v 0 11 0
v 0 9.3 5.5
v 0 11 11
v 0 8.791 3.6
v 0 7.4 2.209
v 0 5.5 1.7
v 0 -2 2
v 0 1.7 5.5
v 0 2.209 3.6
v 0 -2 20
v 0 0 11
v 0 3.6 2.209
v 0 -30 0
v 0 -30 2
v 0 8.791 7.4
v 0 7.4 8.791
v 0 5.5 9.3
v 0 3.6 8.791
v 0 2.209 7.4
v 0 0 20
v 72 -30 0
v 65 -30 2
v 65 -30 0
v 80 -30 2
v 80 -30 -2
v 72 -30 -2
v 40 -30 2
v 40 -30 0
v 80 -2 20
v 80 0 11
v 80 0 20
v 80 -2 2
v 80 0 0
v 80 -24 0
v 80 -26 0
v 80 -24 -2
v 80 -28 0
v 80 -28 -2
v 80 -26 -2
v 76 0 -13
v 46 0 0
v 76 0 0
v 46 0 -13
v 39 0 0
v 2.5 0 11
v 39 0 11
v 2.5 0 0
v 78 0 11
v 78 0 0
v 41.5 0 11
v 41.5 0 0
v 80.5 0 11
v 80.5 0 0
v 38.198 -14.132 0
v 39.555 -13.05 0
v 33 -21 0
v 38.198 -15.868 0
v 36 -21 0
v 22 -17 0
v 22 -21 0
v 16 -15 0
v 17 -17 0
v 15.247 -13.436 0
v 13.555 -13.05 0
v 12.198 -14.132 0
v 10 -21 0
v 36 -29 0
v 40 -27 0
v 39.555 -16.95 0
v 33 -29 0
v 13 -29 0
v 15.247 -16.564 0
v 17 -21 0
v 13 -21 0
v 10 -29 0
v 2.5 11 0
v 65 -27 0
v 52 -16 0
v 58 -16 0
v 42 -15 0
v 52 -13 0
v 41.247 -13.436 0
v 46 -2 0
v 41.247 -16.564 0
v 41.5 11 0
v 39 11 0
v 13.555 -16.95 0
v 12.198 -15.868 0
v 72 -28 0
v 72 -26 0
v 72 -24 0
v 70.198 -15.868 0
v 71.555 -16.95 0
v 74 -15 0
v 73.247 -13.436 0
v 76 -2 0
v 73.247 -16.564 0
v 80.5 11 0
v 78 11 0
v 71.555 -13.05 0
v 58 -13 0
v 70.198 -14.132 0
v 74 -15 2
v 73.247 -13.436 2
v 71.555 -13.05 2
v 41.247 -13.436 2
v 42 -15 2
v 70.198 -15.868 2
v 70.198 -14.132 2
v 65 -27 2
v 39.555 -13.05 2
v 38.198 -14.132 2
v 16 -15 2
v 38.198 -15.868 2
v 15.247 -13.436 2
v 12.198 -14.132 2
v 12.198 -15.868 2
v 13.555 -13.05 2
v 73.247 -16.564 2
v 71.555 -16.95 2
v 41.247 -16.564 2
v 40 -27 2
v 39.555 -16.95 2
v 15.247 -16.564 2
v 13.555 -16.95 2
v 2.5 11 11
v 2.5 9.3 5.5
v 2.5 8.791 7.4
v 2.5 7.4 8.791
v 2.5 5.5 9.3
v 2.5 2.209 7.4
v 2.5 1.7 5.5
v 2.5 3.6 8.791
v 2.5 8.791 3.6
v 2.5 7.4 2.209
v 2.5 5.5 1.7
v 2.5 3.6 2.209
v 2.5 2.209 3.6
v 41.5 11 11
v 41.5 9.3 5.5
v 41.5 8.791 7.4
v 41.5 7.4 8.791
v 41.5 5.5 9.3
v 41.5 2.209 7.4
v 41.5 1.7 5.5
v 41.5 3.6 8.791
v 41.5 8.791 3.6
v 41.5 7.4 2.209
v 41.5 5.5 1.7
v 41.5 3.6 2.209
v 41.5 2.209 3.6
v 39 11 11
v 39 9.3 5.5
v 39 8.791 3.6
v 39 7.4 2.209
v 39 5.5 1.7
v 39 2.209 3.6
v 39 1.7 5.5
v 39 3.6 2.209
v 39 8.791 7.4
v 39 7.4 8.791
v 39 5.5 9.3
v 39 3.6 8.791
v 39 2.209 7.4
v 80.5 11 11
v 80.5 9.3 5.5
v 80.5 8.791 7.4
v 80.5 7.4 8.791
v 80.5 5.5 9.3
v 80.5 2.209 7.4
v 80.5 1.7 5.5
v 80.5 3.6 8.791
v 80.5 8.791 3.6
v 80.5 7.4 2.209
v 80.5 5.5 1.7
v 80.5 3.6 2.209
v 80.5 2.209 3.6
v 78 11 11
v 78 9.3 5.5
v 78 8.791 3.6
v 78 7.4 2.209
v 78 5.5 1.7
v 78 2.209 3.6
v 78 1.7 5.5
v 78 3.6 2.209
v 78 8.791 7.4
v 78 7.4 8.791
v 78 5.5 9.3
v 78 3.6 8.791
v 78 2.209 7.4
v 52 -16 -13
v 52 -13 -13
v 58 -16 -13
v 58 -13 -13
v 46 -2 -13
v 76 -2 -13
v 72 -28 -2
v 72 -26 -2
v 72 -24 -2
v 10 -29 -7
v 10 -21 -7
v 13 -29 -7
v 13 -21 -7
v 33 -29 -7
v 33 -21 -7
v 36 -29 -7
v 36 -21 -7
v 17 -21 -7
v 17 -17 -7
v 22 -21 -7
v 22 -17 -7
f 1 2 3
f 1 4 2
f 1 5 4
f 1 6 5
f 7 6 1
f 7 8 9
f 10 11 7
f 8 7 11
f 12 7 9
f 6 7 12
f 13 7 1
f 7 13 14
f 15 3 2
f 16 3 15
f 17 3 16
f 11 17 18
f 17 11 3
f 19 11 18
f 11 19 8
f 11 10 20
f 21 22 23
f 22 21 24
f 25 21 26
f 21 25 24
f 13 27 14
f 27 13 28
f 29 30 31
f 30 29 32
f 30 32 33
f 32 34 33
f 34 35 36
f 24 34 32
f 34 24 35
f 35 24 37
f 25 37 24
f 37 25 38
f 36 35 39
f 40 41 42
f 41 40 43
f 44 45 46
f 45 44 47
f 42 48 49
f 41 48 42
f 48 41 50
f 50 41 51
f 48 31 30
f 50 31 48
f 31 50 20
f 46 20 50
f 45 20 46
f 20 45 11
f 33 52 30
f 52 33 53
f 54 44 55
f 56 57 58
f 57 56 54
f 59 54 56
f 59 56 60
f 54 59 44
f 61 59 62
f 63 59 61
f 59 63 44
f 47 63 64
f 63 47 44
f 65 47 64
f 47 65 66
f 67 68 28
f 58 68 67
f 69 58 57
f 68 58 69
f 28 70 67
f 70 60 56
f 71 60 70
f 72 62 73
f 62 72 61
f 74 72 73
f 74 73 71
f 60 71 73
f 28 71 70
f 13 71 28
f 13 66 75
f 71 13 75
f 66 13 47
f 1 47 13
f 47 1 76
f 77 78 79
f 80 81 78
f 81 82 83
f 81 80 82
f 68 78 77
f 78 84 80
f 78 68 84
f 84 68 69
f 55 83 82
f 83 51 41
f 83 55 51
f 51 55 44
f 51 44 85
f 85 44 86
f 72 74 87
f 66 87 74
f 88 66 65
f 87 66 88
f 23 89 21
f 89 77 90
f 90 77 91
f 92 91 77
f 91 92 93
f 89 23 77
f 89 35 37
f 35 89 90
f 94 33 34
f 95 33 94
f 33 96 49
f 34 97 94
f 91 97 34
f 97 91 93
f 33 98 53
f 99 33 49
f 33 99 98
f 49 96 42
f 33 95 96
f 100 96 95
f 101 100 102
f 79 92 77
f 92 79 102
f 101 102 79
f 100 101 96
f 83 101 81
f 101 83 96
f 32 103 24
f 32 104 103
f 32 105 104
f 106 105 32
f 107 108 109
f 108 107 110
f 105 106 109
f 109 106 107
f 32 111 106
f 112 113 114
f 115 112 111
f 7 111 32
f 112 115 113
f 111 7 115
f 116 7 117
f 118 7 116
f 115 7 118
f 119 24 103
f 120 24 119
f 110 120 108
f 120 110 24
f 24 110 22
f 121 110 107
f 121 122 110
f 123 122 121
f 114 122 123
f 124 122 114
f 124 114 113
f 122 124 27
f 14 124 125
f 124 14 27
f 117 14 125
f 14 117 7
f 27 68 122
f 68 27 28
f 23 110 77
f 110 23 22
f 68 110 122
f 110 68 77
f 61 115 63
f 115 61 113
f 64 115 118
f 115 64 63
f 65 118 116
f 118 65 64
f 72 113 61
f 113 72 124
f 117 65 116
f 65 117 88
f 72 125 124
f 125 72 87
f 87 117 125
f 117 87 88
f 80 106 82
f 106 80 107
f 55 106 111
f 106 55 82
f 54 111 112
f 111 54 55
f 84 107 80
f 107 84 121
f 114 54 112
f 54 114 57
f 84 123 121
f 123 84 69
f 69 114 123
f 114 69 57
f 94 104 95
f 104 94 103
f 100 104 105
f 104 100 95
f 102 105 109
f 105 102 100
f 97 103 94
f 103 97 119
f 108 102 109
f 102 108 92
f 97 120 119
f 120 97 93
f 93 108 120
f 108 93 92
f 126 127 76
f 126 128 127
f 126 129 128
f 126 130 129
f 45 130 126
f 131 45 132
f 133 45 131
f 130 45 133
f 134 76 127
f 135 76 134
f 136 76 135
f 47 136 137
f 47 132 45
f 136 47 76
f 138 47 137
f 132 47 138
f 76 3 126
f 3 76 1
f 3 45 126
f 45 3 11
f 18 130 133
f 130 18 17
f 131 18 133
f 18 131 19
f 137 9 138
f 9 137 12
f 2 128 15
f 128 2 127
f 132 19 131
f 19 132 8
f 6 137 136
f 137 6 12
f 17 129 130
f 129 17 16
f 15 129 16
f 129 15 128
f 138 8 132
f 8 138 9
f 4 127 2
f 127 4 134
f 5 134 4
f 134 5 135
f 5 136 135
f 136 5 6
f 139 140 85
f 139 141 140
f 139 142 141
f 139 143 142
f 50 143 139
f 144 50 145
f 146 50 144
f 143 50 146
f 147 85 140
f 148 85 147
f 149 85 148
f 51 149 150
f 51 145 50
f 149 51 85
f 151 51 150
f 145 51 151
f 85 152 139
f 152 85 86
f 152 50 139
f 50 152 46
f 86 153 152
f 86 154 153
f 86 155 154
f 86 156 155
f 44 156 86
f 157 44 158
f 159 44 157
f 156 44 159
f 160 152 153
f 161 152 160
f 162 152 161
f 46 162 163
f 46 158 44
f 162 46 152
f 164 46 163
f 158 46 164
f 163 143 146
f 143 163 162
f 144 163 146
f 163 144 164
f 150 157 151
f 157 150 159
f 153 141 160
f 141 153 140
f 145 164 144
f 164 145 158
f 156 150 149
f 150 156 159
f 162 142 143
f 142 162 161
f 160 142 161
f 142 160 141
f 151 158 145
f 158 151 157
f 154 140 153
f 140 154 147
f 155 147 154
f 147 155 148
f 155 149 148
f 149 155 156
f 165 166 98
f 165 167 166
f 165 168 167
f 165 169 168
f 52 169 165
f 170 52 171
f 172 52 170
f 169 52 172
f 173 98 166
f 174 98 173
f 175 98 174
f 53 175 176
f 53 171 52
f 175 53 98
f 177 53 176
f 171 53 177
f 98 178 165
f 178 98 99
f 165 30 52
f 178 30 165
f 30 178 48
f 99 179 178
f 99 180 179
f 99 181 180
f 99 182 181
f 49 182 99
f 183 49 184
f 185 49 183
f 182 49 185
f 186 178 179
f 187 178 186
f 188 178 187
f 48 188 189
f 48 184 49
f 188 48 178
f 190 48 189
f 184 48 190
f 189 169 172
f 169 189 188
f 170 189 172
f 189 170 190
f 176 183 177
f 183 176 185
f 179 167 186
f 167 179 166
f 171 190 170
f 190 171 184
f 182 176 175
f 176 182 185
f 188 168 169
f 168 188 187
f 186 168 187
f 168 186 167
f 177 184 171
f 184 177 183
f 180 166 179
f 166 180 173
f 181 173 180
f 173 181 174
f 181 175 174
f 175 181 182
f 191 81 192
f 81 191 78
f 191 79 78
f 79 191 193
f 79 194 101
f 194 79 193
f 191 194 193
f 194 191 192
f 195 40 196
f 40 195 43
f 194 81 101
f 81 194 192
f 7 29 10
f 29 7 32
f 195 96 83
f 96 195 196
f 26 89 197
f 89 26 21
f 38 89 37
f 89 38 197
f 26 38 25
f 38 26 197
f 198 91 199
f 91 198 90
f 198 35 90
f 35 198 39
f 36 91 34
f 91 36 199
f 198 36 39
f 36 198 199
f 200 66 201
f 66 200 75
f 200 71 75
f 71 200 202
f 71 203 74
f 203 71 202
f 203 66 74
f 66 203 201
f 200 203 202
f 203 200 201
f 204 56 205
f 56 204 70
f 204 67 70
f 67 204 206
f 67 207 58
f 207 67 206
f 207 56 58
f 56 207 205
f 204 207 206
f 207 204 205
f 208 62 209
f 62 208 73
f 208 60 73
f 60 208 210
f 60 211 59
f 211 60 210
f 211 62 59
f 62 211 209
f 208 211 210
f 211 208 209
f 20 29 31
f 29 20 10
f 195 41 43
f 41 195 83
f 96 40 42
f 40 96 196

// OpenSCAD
// Kitchen Sink Light - USB battery version.

h=20;
w=30;
d=80;

t=2;


module ledhold(t)
{   
    rotate([0,90,0])
    difference() {
        //cube([10,10,t]);
        //translate([5, 5, -1]) rotate([ 0,0,90]) cylinder(h=4+t,r=3.5);
        cube([11,11,t]);
        translate([5.5, 5.5, -1]) rotate([ 0,0,90]) cylinder(h=4+t,r=3.8);

    }
}


module baseplate(h,w,d,t) {
// plate with hole
difference() {

  //mainboard with kirikaki
  difference() {
    cube([d,t,w]);
    translate([40,t-3,w-3]) cube([25,5, 4]);
  }

  translate([d/2, -2, 15/2 + 25]) rotate([ -90,0,0]) cylinder(h=4,r=1.6);
    
  //screw hole
  translate([14, -4, 15]) rotate([ -90,0,0]) cylinder(h=7,r=2);
  translate([40, -4, 15]) rotate([ -90,0,0]) cylinder(h=7,r=2);
  translate([72, -4, 15]) rotate([ -90,0,0]) cylinder(h=7,r=2);
}
//wire hold
translate([d-8,-2,28]) cube([8,3,2]);
translate([d-8,-2,24]) cube([8,3,2]);

// Switch guide
translate([10,-9+t,w-7-t]) cube([t+1,5+t, 8]);
translate([10+23,-9+t,w-7-t]) cube([t+1,5+t, 8]);
translate([10+7,-9+t,w-7-t-4]) cube([t+3,5+t, 4]);

// LEDtube hold
translate([0,0,0]) ledhold(2.5);
translate([(d-t)/2,0,0]) ledhold(2.5);
translate([d-t,0,0]) ledhold(2.5);

// DC-jack hold
translate([d-t-26,-13,0]) 
    difference() {
        cube([6,12+t, 16]);
        translate([-1,-1,2]) cube([8, 14, 11]);        
    }
    
}
translate([d-t-32, -2,-13]) cube([30,2,20]);


// DC-jack hold (V3)
//translate([d-t-16,-13,0]) 
//    difference() {
//        cube([4,12+t, 15]);
//        //translate([-2,2,2]) cube([6, 11, 11]);
//        translate([-2,-1,2]) cube([7, 14, 11]);
//    }
//}

module sinklight(h,w,d,t) {
  cube([d,h,t]);
  translate([0,0,0]) baseplate(h,w,d,t);
}



rotate([90,0,0])  sinklight(h,w,d,t);
//rotate([90,0,180])  sinklight(h,w,d,t);
